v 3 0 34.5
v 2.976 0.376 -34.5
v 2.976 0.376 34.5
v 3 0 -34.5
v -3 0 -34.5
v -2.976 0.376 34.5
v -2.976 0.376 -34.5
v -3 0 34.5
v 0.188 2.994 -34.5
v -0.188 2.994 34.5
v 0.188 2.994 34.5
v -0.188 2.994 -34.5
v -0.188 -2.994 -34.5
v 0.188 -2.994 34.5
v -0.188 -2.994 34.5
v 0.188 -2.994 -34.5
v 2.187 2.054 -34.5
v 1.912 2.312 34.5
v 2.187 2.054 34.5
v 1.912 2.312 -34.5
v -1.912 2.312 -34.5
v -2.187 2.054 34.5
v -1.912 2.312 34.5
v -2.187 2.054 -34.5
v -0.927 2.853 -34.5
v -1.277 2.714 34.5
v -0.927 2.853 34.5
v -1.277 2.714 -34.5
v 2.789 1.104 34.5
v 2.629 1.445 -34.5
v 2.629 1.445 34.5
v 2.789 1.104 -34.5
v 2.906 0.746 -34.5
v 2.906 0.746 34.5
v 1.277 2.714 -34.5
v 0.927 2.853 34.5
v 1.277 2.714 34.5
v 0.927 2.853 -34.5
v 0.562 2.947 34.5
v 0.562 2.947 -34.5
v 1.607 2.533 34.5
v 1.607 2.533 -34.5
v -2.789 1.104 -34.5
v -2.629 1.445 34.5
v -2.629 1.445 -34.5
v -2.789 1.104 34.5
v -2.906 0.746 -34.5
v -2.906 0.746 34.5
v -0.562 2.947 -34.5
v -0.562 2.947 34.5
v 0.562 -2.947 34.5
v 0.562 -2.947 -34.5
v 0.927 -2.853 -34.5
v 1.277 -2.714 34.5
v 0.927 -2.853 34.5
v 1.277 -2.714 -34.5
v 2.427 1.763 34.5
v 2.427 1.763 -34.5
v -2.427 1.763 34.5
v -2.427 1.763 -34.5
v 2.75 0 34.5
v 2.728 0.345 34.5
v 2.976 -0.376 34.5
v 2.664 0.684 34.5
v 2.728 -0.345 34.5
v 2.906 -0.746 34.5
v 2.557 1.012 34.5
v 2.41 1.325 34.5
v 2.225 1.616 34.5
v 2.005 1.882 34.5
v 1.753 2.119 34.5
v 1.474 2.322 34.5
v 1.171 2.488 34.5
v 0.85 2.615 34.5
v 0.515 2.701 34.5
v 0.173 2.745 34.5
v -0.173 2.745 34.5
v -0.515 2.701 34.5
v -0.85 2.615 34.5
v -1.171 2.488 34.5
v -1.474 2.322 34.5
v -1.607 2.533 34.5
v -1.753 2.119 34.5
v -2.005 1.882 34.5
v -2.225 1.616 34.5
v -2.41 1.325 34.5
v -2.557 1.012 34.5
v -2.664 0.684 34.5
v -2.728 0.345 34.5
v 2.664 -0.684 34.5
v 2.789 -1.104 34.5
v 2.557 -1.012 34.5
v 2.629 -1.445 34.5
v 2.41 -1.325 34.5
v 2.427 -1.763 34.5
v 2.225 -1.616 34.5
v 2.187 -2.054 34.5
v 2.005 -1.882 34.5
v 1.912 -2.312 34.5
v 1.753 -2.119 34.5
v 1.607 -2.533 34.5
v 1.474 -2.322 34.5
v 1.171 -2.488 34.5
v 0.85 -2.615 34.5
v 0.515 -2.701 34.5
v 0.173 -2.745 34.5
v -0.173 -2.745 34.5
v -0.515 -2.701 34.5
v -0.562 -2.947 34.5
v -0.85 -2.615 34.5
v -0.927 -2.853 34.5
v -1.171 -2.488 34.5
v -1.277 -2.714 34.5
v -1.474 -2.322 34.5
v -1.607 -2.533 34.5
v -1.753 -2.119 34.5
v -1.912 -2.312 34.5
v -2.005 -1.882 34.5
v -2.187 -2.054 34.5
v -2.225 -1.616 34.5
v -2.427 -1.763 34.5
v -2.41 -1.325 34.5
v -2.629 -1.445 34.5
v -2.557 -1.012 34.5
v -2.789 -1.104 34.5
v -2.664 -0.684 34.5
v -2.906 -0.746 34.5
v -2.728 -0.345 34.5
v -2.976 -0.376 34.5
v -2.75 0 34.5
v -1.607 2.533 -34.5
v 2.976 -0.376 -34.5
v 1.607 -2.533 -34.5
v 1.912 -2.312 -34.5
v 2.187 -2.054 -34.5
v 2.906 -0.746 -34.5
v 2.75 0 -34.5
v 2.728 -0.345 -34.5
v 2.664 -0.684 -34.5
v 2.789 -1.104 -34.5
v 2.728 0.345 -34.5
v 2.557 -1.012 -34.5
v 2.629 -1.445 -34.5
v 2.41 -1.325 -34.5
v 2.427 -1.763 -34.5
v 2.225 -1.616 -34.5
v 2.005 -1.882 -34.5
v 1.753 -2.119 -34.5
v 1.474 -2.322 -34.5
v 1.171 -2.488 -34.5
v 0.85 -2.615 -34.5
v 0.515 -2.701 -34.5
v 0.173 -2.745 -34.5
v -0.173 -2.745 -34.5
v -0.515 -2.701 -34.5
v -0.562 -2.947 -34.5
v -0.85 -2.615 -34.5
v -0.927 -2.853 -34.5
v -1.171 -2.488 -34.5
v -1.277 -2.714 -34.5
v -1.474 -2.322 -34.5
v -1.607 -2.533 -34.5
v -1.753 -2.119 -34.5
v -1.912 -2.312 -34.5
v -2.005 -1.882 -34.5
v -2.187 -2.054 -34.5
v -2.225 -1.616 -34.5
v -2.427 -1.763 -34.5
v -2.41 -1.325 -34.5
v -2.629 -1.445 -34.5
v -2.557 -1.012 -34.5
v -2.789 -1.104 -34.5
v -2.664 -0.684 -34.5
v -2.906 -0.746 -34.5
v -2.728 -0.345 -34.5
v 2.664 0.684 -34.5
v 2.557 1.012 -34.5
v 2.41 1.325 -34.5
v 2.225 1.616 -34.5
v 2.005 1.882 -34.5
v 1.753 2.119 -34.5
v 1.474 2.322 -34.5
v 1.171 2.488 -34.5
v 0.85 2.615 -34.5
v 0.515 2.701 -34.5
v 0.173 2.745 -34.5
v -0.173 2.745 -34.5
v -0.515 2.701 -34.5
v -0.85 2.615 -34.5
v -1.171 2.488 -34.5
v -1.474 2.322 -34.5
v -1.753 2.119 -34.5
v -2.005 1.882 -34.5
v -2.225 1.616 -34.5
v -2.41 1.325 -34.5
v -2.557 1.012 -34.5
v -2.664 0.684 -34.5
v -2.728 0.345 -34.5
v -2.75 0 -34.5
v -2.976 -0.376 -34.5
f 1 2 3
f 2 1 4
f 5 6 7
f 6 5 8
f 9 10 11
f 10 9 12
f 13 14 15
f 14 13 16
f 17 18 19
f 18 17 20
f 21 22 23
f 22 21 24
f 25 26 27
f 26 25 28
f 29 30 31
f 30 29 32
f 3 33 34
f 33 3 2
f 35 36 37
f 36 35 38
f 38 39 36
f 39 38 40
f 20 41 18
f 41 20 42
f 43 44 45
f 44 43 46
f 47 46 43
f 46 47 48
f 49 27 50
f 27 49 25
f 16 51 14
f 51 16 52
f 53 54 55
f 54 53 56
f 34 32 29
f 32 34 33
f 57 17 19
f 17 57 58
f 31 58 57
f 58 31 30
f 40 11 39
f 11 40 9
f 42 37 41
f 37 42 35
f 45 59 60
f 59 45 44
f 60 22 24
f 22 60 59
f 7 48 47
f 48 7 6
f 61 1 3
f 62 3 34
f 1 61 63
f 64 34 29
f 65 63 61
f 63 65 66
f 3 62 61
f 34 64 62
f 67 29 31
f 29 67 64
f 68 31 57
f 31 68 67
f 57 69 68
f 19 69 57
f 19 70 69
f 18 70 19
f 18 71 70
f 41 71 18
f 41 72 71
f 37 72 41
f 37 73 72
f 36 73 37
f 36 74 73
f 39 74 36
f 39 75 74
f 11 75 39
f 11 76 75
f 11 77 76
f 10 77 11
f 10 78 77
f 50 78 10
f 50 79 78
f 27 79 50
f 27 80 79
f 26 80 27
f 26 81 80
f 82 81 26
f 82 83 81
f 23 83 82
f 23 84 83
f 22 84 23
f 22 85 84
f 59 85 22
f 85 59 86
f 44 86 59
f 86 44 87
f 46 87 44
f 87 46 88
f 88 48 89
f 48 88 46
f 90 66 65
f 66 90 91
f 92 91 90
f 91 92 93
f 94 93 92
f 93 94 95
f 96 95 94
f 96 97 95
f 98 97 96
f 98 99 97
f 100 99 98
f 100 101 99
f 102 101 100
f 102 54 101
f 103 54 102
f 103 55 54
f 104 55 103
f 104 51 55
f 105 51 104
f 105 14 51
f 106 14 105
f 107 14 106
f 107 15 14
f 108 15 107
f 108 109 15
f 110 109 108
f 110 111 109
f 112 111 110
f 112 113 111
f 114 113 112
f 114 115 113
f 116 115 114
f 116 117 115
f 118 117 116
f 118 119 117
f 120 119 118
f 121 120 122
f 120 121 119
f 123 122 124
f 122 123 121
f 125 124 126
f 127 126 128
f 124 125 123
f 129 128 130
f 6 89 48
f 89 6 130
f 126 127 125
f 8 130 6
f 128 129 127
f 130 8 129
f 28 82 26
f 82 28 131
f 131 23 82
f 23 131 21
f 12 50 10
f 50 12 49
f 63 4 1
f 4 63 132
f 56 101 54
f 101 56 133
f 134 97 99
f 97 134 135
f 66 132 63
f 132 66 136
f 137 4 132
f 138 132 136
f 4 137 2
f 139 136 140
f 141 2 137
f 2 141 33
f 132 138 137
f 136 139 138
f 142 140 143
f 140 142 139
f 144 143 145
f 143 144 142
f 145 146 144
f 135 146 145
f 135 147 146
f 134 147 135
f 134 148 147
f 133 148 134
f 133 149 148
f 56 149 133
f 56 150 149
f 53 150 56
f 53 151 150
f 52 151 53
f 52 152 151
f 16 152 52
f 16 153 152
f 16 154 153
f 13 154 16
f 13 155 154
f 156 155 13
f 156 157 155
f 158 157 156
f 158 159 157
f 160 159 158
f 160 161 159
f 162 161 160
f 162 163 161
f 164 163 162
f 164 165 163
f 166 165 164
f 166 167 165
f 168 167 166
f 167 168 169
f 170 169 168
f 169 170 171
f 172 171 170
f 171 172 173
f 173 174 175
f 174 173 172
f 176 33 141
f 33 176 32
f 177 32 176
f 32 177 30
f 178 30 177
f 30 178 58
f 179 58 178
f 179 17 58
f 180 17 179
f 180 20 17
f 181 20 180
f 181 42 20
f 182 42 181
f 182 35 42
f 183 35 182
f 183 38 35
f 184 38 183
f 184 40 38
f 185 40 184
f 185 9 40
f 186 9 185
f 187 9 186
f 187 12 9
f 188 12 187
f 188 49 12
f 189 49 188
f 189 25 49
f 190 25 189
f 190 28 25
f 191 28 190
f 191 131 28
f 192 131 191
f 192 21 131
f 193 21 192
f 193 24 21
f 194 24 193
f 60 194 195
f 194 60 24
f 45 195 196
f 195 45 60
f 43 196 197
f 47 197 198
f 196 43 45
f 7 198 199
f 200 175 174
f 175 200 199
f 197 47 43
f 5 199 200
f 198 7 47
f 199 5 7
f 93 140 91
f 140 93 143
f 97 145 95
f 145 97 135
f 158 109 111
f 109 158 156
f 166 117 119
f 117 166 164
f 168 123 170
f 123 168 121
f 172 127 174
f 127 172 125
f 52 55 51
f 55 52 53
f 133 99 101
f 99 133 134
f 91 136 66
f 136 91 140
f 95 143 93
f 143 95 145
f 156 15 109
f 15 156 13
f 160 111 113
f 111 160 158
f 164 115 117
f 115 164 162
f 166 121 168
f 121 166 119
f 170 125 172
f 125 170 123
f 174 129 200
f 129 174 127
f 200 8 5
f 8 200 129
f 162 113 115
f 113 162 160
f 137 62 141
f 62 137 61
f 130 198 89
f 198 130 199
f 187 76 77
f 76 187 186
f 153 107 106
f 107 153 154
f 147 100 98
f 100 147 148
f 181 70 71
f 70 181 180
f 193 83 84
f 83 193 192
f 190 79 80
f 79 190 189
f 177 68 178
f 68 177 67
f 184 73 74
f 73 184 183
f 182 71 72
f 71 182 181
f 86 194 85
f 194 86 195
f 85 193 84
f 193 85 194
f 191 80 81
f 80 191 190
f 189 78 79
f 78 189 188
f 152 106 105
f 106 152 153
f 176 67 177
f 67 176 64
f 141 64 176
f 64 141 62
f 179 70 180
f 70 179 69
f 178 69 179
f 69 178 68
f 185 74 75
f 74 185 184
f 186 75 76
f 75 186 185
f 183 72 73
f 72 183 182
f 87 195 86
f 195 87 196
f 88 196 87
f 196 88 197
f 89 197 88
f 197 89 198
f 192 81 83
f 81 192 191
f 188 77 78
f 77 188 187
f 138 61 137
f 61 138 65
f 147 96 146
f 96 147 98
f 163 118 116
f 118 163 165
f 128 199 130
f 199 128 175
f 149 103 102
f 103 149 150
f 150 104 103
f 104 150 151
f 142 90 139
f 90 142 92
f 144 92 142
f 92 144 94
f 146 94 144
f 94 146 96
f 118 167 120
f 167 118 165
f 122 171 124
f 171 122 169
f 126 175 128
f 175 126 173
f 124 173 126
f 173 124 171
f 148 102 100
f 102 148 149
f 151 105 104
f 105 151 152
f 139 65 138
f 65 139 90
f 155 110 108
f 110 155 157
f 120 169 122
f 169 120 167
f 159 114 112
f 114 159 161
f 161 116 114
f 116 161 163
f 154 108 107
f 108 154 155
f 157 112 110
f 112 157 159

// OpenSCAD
$fn = 50;


difference() {
	union() {
		translate(v = [0, 0, -34.5000000000]) {
			cylinder(h = 69, r = 3.0000000000);
		}
	}
	union() {
		translate(v = [0, 0, -100.0000000000]) {
			cylinder(h = 200, r = 2.7500000000);
		}
	}
}
